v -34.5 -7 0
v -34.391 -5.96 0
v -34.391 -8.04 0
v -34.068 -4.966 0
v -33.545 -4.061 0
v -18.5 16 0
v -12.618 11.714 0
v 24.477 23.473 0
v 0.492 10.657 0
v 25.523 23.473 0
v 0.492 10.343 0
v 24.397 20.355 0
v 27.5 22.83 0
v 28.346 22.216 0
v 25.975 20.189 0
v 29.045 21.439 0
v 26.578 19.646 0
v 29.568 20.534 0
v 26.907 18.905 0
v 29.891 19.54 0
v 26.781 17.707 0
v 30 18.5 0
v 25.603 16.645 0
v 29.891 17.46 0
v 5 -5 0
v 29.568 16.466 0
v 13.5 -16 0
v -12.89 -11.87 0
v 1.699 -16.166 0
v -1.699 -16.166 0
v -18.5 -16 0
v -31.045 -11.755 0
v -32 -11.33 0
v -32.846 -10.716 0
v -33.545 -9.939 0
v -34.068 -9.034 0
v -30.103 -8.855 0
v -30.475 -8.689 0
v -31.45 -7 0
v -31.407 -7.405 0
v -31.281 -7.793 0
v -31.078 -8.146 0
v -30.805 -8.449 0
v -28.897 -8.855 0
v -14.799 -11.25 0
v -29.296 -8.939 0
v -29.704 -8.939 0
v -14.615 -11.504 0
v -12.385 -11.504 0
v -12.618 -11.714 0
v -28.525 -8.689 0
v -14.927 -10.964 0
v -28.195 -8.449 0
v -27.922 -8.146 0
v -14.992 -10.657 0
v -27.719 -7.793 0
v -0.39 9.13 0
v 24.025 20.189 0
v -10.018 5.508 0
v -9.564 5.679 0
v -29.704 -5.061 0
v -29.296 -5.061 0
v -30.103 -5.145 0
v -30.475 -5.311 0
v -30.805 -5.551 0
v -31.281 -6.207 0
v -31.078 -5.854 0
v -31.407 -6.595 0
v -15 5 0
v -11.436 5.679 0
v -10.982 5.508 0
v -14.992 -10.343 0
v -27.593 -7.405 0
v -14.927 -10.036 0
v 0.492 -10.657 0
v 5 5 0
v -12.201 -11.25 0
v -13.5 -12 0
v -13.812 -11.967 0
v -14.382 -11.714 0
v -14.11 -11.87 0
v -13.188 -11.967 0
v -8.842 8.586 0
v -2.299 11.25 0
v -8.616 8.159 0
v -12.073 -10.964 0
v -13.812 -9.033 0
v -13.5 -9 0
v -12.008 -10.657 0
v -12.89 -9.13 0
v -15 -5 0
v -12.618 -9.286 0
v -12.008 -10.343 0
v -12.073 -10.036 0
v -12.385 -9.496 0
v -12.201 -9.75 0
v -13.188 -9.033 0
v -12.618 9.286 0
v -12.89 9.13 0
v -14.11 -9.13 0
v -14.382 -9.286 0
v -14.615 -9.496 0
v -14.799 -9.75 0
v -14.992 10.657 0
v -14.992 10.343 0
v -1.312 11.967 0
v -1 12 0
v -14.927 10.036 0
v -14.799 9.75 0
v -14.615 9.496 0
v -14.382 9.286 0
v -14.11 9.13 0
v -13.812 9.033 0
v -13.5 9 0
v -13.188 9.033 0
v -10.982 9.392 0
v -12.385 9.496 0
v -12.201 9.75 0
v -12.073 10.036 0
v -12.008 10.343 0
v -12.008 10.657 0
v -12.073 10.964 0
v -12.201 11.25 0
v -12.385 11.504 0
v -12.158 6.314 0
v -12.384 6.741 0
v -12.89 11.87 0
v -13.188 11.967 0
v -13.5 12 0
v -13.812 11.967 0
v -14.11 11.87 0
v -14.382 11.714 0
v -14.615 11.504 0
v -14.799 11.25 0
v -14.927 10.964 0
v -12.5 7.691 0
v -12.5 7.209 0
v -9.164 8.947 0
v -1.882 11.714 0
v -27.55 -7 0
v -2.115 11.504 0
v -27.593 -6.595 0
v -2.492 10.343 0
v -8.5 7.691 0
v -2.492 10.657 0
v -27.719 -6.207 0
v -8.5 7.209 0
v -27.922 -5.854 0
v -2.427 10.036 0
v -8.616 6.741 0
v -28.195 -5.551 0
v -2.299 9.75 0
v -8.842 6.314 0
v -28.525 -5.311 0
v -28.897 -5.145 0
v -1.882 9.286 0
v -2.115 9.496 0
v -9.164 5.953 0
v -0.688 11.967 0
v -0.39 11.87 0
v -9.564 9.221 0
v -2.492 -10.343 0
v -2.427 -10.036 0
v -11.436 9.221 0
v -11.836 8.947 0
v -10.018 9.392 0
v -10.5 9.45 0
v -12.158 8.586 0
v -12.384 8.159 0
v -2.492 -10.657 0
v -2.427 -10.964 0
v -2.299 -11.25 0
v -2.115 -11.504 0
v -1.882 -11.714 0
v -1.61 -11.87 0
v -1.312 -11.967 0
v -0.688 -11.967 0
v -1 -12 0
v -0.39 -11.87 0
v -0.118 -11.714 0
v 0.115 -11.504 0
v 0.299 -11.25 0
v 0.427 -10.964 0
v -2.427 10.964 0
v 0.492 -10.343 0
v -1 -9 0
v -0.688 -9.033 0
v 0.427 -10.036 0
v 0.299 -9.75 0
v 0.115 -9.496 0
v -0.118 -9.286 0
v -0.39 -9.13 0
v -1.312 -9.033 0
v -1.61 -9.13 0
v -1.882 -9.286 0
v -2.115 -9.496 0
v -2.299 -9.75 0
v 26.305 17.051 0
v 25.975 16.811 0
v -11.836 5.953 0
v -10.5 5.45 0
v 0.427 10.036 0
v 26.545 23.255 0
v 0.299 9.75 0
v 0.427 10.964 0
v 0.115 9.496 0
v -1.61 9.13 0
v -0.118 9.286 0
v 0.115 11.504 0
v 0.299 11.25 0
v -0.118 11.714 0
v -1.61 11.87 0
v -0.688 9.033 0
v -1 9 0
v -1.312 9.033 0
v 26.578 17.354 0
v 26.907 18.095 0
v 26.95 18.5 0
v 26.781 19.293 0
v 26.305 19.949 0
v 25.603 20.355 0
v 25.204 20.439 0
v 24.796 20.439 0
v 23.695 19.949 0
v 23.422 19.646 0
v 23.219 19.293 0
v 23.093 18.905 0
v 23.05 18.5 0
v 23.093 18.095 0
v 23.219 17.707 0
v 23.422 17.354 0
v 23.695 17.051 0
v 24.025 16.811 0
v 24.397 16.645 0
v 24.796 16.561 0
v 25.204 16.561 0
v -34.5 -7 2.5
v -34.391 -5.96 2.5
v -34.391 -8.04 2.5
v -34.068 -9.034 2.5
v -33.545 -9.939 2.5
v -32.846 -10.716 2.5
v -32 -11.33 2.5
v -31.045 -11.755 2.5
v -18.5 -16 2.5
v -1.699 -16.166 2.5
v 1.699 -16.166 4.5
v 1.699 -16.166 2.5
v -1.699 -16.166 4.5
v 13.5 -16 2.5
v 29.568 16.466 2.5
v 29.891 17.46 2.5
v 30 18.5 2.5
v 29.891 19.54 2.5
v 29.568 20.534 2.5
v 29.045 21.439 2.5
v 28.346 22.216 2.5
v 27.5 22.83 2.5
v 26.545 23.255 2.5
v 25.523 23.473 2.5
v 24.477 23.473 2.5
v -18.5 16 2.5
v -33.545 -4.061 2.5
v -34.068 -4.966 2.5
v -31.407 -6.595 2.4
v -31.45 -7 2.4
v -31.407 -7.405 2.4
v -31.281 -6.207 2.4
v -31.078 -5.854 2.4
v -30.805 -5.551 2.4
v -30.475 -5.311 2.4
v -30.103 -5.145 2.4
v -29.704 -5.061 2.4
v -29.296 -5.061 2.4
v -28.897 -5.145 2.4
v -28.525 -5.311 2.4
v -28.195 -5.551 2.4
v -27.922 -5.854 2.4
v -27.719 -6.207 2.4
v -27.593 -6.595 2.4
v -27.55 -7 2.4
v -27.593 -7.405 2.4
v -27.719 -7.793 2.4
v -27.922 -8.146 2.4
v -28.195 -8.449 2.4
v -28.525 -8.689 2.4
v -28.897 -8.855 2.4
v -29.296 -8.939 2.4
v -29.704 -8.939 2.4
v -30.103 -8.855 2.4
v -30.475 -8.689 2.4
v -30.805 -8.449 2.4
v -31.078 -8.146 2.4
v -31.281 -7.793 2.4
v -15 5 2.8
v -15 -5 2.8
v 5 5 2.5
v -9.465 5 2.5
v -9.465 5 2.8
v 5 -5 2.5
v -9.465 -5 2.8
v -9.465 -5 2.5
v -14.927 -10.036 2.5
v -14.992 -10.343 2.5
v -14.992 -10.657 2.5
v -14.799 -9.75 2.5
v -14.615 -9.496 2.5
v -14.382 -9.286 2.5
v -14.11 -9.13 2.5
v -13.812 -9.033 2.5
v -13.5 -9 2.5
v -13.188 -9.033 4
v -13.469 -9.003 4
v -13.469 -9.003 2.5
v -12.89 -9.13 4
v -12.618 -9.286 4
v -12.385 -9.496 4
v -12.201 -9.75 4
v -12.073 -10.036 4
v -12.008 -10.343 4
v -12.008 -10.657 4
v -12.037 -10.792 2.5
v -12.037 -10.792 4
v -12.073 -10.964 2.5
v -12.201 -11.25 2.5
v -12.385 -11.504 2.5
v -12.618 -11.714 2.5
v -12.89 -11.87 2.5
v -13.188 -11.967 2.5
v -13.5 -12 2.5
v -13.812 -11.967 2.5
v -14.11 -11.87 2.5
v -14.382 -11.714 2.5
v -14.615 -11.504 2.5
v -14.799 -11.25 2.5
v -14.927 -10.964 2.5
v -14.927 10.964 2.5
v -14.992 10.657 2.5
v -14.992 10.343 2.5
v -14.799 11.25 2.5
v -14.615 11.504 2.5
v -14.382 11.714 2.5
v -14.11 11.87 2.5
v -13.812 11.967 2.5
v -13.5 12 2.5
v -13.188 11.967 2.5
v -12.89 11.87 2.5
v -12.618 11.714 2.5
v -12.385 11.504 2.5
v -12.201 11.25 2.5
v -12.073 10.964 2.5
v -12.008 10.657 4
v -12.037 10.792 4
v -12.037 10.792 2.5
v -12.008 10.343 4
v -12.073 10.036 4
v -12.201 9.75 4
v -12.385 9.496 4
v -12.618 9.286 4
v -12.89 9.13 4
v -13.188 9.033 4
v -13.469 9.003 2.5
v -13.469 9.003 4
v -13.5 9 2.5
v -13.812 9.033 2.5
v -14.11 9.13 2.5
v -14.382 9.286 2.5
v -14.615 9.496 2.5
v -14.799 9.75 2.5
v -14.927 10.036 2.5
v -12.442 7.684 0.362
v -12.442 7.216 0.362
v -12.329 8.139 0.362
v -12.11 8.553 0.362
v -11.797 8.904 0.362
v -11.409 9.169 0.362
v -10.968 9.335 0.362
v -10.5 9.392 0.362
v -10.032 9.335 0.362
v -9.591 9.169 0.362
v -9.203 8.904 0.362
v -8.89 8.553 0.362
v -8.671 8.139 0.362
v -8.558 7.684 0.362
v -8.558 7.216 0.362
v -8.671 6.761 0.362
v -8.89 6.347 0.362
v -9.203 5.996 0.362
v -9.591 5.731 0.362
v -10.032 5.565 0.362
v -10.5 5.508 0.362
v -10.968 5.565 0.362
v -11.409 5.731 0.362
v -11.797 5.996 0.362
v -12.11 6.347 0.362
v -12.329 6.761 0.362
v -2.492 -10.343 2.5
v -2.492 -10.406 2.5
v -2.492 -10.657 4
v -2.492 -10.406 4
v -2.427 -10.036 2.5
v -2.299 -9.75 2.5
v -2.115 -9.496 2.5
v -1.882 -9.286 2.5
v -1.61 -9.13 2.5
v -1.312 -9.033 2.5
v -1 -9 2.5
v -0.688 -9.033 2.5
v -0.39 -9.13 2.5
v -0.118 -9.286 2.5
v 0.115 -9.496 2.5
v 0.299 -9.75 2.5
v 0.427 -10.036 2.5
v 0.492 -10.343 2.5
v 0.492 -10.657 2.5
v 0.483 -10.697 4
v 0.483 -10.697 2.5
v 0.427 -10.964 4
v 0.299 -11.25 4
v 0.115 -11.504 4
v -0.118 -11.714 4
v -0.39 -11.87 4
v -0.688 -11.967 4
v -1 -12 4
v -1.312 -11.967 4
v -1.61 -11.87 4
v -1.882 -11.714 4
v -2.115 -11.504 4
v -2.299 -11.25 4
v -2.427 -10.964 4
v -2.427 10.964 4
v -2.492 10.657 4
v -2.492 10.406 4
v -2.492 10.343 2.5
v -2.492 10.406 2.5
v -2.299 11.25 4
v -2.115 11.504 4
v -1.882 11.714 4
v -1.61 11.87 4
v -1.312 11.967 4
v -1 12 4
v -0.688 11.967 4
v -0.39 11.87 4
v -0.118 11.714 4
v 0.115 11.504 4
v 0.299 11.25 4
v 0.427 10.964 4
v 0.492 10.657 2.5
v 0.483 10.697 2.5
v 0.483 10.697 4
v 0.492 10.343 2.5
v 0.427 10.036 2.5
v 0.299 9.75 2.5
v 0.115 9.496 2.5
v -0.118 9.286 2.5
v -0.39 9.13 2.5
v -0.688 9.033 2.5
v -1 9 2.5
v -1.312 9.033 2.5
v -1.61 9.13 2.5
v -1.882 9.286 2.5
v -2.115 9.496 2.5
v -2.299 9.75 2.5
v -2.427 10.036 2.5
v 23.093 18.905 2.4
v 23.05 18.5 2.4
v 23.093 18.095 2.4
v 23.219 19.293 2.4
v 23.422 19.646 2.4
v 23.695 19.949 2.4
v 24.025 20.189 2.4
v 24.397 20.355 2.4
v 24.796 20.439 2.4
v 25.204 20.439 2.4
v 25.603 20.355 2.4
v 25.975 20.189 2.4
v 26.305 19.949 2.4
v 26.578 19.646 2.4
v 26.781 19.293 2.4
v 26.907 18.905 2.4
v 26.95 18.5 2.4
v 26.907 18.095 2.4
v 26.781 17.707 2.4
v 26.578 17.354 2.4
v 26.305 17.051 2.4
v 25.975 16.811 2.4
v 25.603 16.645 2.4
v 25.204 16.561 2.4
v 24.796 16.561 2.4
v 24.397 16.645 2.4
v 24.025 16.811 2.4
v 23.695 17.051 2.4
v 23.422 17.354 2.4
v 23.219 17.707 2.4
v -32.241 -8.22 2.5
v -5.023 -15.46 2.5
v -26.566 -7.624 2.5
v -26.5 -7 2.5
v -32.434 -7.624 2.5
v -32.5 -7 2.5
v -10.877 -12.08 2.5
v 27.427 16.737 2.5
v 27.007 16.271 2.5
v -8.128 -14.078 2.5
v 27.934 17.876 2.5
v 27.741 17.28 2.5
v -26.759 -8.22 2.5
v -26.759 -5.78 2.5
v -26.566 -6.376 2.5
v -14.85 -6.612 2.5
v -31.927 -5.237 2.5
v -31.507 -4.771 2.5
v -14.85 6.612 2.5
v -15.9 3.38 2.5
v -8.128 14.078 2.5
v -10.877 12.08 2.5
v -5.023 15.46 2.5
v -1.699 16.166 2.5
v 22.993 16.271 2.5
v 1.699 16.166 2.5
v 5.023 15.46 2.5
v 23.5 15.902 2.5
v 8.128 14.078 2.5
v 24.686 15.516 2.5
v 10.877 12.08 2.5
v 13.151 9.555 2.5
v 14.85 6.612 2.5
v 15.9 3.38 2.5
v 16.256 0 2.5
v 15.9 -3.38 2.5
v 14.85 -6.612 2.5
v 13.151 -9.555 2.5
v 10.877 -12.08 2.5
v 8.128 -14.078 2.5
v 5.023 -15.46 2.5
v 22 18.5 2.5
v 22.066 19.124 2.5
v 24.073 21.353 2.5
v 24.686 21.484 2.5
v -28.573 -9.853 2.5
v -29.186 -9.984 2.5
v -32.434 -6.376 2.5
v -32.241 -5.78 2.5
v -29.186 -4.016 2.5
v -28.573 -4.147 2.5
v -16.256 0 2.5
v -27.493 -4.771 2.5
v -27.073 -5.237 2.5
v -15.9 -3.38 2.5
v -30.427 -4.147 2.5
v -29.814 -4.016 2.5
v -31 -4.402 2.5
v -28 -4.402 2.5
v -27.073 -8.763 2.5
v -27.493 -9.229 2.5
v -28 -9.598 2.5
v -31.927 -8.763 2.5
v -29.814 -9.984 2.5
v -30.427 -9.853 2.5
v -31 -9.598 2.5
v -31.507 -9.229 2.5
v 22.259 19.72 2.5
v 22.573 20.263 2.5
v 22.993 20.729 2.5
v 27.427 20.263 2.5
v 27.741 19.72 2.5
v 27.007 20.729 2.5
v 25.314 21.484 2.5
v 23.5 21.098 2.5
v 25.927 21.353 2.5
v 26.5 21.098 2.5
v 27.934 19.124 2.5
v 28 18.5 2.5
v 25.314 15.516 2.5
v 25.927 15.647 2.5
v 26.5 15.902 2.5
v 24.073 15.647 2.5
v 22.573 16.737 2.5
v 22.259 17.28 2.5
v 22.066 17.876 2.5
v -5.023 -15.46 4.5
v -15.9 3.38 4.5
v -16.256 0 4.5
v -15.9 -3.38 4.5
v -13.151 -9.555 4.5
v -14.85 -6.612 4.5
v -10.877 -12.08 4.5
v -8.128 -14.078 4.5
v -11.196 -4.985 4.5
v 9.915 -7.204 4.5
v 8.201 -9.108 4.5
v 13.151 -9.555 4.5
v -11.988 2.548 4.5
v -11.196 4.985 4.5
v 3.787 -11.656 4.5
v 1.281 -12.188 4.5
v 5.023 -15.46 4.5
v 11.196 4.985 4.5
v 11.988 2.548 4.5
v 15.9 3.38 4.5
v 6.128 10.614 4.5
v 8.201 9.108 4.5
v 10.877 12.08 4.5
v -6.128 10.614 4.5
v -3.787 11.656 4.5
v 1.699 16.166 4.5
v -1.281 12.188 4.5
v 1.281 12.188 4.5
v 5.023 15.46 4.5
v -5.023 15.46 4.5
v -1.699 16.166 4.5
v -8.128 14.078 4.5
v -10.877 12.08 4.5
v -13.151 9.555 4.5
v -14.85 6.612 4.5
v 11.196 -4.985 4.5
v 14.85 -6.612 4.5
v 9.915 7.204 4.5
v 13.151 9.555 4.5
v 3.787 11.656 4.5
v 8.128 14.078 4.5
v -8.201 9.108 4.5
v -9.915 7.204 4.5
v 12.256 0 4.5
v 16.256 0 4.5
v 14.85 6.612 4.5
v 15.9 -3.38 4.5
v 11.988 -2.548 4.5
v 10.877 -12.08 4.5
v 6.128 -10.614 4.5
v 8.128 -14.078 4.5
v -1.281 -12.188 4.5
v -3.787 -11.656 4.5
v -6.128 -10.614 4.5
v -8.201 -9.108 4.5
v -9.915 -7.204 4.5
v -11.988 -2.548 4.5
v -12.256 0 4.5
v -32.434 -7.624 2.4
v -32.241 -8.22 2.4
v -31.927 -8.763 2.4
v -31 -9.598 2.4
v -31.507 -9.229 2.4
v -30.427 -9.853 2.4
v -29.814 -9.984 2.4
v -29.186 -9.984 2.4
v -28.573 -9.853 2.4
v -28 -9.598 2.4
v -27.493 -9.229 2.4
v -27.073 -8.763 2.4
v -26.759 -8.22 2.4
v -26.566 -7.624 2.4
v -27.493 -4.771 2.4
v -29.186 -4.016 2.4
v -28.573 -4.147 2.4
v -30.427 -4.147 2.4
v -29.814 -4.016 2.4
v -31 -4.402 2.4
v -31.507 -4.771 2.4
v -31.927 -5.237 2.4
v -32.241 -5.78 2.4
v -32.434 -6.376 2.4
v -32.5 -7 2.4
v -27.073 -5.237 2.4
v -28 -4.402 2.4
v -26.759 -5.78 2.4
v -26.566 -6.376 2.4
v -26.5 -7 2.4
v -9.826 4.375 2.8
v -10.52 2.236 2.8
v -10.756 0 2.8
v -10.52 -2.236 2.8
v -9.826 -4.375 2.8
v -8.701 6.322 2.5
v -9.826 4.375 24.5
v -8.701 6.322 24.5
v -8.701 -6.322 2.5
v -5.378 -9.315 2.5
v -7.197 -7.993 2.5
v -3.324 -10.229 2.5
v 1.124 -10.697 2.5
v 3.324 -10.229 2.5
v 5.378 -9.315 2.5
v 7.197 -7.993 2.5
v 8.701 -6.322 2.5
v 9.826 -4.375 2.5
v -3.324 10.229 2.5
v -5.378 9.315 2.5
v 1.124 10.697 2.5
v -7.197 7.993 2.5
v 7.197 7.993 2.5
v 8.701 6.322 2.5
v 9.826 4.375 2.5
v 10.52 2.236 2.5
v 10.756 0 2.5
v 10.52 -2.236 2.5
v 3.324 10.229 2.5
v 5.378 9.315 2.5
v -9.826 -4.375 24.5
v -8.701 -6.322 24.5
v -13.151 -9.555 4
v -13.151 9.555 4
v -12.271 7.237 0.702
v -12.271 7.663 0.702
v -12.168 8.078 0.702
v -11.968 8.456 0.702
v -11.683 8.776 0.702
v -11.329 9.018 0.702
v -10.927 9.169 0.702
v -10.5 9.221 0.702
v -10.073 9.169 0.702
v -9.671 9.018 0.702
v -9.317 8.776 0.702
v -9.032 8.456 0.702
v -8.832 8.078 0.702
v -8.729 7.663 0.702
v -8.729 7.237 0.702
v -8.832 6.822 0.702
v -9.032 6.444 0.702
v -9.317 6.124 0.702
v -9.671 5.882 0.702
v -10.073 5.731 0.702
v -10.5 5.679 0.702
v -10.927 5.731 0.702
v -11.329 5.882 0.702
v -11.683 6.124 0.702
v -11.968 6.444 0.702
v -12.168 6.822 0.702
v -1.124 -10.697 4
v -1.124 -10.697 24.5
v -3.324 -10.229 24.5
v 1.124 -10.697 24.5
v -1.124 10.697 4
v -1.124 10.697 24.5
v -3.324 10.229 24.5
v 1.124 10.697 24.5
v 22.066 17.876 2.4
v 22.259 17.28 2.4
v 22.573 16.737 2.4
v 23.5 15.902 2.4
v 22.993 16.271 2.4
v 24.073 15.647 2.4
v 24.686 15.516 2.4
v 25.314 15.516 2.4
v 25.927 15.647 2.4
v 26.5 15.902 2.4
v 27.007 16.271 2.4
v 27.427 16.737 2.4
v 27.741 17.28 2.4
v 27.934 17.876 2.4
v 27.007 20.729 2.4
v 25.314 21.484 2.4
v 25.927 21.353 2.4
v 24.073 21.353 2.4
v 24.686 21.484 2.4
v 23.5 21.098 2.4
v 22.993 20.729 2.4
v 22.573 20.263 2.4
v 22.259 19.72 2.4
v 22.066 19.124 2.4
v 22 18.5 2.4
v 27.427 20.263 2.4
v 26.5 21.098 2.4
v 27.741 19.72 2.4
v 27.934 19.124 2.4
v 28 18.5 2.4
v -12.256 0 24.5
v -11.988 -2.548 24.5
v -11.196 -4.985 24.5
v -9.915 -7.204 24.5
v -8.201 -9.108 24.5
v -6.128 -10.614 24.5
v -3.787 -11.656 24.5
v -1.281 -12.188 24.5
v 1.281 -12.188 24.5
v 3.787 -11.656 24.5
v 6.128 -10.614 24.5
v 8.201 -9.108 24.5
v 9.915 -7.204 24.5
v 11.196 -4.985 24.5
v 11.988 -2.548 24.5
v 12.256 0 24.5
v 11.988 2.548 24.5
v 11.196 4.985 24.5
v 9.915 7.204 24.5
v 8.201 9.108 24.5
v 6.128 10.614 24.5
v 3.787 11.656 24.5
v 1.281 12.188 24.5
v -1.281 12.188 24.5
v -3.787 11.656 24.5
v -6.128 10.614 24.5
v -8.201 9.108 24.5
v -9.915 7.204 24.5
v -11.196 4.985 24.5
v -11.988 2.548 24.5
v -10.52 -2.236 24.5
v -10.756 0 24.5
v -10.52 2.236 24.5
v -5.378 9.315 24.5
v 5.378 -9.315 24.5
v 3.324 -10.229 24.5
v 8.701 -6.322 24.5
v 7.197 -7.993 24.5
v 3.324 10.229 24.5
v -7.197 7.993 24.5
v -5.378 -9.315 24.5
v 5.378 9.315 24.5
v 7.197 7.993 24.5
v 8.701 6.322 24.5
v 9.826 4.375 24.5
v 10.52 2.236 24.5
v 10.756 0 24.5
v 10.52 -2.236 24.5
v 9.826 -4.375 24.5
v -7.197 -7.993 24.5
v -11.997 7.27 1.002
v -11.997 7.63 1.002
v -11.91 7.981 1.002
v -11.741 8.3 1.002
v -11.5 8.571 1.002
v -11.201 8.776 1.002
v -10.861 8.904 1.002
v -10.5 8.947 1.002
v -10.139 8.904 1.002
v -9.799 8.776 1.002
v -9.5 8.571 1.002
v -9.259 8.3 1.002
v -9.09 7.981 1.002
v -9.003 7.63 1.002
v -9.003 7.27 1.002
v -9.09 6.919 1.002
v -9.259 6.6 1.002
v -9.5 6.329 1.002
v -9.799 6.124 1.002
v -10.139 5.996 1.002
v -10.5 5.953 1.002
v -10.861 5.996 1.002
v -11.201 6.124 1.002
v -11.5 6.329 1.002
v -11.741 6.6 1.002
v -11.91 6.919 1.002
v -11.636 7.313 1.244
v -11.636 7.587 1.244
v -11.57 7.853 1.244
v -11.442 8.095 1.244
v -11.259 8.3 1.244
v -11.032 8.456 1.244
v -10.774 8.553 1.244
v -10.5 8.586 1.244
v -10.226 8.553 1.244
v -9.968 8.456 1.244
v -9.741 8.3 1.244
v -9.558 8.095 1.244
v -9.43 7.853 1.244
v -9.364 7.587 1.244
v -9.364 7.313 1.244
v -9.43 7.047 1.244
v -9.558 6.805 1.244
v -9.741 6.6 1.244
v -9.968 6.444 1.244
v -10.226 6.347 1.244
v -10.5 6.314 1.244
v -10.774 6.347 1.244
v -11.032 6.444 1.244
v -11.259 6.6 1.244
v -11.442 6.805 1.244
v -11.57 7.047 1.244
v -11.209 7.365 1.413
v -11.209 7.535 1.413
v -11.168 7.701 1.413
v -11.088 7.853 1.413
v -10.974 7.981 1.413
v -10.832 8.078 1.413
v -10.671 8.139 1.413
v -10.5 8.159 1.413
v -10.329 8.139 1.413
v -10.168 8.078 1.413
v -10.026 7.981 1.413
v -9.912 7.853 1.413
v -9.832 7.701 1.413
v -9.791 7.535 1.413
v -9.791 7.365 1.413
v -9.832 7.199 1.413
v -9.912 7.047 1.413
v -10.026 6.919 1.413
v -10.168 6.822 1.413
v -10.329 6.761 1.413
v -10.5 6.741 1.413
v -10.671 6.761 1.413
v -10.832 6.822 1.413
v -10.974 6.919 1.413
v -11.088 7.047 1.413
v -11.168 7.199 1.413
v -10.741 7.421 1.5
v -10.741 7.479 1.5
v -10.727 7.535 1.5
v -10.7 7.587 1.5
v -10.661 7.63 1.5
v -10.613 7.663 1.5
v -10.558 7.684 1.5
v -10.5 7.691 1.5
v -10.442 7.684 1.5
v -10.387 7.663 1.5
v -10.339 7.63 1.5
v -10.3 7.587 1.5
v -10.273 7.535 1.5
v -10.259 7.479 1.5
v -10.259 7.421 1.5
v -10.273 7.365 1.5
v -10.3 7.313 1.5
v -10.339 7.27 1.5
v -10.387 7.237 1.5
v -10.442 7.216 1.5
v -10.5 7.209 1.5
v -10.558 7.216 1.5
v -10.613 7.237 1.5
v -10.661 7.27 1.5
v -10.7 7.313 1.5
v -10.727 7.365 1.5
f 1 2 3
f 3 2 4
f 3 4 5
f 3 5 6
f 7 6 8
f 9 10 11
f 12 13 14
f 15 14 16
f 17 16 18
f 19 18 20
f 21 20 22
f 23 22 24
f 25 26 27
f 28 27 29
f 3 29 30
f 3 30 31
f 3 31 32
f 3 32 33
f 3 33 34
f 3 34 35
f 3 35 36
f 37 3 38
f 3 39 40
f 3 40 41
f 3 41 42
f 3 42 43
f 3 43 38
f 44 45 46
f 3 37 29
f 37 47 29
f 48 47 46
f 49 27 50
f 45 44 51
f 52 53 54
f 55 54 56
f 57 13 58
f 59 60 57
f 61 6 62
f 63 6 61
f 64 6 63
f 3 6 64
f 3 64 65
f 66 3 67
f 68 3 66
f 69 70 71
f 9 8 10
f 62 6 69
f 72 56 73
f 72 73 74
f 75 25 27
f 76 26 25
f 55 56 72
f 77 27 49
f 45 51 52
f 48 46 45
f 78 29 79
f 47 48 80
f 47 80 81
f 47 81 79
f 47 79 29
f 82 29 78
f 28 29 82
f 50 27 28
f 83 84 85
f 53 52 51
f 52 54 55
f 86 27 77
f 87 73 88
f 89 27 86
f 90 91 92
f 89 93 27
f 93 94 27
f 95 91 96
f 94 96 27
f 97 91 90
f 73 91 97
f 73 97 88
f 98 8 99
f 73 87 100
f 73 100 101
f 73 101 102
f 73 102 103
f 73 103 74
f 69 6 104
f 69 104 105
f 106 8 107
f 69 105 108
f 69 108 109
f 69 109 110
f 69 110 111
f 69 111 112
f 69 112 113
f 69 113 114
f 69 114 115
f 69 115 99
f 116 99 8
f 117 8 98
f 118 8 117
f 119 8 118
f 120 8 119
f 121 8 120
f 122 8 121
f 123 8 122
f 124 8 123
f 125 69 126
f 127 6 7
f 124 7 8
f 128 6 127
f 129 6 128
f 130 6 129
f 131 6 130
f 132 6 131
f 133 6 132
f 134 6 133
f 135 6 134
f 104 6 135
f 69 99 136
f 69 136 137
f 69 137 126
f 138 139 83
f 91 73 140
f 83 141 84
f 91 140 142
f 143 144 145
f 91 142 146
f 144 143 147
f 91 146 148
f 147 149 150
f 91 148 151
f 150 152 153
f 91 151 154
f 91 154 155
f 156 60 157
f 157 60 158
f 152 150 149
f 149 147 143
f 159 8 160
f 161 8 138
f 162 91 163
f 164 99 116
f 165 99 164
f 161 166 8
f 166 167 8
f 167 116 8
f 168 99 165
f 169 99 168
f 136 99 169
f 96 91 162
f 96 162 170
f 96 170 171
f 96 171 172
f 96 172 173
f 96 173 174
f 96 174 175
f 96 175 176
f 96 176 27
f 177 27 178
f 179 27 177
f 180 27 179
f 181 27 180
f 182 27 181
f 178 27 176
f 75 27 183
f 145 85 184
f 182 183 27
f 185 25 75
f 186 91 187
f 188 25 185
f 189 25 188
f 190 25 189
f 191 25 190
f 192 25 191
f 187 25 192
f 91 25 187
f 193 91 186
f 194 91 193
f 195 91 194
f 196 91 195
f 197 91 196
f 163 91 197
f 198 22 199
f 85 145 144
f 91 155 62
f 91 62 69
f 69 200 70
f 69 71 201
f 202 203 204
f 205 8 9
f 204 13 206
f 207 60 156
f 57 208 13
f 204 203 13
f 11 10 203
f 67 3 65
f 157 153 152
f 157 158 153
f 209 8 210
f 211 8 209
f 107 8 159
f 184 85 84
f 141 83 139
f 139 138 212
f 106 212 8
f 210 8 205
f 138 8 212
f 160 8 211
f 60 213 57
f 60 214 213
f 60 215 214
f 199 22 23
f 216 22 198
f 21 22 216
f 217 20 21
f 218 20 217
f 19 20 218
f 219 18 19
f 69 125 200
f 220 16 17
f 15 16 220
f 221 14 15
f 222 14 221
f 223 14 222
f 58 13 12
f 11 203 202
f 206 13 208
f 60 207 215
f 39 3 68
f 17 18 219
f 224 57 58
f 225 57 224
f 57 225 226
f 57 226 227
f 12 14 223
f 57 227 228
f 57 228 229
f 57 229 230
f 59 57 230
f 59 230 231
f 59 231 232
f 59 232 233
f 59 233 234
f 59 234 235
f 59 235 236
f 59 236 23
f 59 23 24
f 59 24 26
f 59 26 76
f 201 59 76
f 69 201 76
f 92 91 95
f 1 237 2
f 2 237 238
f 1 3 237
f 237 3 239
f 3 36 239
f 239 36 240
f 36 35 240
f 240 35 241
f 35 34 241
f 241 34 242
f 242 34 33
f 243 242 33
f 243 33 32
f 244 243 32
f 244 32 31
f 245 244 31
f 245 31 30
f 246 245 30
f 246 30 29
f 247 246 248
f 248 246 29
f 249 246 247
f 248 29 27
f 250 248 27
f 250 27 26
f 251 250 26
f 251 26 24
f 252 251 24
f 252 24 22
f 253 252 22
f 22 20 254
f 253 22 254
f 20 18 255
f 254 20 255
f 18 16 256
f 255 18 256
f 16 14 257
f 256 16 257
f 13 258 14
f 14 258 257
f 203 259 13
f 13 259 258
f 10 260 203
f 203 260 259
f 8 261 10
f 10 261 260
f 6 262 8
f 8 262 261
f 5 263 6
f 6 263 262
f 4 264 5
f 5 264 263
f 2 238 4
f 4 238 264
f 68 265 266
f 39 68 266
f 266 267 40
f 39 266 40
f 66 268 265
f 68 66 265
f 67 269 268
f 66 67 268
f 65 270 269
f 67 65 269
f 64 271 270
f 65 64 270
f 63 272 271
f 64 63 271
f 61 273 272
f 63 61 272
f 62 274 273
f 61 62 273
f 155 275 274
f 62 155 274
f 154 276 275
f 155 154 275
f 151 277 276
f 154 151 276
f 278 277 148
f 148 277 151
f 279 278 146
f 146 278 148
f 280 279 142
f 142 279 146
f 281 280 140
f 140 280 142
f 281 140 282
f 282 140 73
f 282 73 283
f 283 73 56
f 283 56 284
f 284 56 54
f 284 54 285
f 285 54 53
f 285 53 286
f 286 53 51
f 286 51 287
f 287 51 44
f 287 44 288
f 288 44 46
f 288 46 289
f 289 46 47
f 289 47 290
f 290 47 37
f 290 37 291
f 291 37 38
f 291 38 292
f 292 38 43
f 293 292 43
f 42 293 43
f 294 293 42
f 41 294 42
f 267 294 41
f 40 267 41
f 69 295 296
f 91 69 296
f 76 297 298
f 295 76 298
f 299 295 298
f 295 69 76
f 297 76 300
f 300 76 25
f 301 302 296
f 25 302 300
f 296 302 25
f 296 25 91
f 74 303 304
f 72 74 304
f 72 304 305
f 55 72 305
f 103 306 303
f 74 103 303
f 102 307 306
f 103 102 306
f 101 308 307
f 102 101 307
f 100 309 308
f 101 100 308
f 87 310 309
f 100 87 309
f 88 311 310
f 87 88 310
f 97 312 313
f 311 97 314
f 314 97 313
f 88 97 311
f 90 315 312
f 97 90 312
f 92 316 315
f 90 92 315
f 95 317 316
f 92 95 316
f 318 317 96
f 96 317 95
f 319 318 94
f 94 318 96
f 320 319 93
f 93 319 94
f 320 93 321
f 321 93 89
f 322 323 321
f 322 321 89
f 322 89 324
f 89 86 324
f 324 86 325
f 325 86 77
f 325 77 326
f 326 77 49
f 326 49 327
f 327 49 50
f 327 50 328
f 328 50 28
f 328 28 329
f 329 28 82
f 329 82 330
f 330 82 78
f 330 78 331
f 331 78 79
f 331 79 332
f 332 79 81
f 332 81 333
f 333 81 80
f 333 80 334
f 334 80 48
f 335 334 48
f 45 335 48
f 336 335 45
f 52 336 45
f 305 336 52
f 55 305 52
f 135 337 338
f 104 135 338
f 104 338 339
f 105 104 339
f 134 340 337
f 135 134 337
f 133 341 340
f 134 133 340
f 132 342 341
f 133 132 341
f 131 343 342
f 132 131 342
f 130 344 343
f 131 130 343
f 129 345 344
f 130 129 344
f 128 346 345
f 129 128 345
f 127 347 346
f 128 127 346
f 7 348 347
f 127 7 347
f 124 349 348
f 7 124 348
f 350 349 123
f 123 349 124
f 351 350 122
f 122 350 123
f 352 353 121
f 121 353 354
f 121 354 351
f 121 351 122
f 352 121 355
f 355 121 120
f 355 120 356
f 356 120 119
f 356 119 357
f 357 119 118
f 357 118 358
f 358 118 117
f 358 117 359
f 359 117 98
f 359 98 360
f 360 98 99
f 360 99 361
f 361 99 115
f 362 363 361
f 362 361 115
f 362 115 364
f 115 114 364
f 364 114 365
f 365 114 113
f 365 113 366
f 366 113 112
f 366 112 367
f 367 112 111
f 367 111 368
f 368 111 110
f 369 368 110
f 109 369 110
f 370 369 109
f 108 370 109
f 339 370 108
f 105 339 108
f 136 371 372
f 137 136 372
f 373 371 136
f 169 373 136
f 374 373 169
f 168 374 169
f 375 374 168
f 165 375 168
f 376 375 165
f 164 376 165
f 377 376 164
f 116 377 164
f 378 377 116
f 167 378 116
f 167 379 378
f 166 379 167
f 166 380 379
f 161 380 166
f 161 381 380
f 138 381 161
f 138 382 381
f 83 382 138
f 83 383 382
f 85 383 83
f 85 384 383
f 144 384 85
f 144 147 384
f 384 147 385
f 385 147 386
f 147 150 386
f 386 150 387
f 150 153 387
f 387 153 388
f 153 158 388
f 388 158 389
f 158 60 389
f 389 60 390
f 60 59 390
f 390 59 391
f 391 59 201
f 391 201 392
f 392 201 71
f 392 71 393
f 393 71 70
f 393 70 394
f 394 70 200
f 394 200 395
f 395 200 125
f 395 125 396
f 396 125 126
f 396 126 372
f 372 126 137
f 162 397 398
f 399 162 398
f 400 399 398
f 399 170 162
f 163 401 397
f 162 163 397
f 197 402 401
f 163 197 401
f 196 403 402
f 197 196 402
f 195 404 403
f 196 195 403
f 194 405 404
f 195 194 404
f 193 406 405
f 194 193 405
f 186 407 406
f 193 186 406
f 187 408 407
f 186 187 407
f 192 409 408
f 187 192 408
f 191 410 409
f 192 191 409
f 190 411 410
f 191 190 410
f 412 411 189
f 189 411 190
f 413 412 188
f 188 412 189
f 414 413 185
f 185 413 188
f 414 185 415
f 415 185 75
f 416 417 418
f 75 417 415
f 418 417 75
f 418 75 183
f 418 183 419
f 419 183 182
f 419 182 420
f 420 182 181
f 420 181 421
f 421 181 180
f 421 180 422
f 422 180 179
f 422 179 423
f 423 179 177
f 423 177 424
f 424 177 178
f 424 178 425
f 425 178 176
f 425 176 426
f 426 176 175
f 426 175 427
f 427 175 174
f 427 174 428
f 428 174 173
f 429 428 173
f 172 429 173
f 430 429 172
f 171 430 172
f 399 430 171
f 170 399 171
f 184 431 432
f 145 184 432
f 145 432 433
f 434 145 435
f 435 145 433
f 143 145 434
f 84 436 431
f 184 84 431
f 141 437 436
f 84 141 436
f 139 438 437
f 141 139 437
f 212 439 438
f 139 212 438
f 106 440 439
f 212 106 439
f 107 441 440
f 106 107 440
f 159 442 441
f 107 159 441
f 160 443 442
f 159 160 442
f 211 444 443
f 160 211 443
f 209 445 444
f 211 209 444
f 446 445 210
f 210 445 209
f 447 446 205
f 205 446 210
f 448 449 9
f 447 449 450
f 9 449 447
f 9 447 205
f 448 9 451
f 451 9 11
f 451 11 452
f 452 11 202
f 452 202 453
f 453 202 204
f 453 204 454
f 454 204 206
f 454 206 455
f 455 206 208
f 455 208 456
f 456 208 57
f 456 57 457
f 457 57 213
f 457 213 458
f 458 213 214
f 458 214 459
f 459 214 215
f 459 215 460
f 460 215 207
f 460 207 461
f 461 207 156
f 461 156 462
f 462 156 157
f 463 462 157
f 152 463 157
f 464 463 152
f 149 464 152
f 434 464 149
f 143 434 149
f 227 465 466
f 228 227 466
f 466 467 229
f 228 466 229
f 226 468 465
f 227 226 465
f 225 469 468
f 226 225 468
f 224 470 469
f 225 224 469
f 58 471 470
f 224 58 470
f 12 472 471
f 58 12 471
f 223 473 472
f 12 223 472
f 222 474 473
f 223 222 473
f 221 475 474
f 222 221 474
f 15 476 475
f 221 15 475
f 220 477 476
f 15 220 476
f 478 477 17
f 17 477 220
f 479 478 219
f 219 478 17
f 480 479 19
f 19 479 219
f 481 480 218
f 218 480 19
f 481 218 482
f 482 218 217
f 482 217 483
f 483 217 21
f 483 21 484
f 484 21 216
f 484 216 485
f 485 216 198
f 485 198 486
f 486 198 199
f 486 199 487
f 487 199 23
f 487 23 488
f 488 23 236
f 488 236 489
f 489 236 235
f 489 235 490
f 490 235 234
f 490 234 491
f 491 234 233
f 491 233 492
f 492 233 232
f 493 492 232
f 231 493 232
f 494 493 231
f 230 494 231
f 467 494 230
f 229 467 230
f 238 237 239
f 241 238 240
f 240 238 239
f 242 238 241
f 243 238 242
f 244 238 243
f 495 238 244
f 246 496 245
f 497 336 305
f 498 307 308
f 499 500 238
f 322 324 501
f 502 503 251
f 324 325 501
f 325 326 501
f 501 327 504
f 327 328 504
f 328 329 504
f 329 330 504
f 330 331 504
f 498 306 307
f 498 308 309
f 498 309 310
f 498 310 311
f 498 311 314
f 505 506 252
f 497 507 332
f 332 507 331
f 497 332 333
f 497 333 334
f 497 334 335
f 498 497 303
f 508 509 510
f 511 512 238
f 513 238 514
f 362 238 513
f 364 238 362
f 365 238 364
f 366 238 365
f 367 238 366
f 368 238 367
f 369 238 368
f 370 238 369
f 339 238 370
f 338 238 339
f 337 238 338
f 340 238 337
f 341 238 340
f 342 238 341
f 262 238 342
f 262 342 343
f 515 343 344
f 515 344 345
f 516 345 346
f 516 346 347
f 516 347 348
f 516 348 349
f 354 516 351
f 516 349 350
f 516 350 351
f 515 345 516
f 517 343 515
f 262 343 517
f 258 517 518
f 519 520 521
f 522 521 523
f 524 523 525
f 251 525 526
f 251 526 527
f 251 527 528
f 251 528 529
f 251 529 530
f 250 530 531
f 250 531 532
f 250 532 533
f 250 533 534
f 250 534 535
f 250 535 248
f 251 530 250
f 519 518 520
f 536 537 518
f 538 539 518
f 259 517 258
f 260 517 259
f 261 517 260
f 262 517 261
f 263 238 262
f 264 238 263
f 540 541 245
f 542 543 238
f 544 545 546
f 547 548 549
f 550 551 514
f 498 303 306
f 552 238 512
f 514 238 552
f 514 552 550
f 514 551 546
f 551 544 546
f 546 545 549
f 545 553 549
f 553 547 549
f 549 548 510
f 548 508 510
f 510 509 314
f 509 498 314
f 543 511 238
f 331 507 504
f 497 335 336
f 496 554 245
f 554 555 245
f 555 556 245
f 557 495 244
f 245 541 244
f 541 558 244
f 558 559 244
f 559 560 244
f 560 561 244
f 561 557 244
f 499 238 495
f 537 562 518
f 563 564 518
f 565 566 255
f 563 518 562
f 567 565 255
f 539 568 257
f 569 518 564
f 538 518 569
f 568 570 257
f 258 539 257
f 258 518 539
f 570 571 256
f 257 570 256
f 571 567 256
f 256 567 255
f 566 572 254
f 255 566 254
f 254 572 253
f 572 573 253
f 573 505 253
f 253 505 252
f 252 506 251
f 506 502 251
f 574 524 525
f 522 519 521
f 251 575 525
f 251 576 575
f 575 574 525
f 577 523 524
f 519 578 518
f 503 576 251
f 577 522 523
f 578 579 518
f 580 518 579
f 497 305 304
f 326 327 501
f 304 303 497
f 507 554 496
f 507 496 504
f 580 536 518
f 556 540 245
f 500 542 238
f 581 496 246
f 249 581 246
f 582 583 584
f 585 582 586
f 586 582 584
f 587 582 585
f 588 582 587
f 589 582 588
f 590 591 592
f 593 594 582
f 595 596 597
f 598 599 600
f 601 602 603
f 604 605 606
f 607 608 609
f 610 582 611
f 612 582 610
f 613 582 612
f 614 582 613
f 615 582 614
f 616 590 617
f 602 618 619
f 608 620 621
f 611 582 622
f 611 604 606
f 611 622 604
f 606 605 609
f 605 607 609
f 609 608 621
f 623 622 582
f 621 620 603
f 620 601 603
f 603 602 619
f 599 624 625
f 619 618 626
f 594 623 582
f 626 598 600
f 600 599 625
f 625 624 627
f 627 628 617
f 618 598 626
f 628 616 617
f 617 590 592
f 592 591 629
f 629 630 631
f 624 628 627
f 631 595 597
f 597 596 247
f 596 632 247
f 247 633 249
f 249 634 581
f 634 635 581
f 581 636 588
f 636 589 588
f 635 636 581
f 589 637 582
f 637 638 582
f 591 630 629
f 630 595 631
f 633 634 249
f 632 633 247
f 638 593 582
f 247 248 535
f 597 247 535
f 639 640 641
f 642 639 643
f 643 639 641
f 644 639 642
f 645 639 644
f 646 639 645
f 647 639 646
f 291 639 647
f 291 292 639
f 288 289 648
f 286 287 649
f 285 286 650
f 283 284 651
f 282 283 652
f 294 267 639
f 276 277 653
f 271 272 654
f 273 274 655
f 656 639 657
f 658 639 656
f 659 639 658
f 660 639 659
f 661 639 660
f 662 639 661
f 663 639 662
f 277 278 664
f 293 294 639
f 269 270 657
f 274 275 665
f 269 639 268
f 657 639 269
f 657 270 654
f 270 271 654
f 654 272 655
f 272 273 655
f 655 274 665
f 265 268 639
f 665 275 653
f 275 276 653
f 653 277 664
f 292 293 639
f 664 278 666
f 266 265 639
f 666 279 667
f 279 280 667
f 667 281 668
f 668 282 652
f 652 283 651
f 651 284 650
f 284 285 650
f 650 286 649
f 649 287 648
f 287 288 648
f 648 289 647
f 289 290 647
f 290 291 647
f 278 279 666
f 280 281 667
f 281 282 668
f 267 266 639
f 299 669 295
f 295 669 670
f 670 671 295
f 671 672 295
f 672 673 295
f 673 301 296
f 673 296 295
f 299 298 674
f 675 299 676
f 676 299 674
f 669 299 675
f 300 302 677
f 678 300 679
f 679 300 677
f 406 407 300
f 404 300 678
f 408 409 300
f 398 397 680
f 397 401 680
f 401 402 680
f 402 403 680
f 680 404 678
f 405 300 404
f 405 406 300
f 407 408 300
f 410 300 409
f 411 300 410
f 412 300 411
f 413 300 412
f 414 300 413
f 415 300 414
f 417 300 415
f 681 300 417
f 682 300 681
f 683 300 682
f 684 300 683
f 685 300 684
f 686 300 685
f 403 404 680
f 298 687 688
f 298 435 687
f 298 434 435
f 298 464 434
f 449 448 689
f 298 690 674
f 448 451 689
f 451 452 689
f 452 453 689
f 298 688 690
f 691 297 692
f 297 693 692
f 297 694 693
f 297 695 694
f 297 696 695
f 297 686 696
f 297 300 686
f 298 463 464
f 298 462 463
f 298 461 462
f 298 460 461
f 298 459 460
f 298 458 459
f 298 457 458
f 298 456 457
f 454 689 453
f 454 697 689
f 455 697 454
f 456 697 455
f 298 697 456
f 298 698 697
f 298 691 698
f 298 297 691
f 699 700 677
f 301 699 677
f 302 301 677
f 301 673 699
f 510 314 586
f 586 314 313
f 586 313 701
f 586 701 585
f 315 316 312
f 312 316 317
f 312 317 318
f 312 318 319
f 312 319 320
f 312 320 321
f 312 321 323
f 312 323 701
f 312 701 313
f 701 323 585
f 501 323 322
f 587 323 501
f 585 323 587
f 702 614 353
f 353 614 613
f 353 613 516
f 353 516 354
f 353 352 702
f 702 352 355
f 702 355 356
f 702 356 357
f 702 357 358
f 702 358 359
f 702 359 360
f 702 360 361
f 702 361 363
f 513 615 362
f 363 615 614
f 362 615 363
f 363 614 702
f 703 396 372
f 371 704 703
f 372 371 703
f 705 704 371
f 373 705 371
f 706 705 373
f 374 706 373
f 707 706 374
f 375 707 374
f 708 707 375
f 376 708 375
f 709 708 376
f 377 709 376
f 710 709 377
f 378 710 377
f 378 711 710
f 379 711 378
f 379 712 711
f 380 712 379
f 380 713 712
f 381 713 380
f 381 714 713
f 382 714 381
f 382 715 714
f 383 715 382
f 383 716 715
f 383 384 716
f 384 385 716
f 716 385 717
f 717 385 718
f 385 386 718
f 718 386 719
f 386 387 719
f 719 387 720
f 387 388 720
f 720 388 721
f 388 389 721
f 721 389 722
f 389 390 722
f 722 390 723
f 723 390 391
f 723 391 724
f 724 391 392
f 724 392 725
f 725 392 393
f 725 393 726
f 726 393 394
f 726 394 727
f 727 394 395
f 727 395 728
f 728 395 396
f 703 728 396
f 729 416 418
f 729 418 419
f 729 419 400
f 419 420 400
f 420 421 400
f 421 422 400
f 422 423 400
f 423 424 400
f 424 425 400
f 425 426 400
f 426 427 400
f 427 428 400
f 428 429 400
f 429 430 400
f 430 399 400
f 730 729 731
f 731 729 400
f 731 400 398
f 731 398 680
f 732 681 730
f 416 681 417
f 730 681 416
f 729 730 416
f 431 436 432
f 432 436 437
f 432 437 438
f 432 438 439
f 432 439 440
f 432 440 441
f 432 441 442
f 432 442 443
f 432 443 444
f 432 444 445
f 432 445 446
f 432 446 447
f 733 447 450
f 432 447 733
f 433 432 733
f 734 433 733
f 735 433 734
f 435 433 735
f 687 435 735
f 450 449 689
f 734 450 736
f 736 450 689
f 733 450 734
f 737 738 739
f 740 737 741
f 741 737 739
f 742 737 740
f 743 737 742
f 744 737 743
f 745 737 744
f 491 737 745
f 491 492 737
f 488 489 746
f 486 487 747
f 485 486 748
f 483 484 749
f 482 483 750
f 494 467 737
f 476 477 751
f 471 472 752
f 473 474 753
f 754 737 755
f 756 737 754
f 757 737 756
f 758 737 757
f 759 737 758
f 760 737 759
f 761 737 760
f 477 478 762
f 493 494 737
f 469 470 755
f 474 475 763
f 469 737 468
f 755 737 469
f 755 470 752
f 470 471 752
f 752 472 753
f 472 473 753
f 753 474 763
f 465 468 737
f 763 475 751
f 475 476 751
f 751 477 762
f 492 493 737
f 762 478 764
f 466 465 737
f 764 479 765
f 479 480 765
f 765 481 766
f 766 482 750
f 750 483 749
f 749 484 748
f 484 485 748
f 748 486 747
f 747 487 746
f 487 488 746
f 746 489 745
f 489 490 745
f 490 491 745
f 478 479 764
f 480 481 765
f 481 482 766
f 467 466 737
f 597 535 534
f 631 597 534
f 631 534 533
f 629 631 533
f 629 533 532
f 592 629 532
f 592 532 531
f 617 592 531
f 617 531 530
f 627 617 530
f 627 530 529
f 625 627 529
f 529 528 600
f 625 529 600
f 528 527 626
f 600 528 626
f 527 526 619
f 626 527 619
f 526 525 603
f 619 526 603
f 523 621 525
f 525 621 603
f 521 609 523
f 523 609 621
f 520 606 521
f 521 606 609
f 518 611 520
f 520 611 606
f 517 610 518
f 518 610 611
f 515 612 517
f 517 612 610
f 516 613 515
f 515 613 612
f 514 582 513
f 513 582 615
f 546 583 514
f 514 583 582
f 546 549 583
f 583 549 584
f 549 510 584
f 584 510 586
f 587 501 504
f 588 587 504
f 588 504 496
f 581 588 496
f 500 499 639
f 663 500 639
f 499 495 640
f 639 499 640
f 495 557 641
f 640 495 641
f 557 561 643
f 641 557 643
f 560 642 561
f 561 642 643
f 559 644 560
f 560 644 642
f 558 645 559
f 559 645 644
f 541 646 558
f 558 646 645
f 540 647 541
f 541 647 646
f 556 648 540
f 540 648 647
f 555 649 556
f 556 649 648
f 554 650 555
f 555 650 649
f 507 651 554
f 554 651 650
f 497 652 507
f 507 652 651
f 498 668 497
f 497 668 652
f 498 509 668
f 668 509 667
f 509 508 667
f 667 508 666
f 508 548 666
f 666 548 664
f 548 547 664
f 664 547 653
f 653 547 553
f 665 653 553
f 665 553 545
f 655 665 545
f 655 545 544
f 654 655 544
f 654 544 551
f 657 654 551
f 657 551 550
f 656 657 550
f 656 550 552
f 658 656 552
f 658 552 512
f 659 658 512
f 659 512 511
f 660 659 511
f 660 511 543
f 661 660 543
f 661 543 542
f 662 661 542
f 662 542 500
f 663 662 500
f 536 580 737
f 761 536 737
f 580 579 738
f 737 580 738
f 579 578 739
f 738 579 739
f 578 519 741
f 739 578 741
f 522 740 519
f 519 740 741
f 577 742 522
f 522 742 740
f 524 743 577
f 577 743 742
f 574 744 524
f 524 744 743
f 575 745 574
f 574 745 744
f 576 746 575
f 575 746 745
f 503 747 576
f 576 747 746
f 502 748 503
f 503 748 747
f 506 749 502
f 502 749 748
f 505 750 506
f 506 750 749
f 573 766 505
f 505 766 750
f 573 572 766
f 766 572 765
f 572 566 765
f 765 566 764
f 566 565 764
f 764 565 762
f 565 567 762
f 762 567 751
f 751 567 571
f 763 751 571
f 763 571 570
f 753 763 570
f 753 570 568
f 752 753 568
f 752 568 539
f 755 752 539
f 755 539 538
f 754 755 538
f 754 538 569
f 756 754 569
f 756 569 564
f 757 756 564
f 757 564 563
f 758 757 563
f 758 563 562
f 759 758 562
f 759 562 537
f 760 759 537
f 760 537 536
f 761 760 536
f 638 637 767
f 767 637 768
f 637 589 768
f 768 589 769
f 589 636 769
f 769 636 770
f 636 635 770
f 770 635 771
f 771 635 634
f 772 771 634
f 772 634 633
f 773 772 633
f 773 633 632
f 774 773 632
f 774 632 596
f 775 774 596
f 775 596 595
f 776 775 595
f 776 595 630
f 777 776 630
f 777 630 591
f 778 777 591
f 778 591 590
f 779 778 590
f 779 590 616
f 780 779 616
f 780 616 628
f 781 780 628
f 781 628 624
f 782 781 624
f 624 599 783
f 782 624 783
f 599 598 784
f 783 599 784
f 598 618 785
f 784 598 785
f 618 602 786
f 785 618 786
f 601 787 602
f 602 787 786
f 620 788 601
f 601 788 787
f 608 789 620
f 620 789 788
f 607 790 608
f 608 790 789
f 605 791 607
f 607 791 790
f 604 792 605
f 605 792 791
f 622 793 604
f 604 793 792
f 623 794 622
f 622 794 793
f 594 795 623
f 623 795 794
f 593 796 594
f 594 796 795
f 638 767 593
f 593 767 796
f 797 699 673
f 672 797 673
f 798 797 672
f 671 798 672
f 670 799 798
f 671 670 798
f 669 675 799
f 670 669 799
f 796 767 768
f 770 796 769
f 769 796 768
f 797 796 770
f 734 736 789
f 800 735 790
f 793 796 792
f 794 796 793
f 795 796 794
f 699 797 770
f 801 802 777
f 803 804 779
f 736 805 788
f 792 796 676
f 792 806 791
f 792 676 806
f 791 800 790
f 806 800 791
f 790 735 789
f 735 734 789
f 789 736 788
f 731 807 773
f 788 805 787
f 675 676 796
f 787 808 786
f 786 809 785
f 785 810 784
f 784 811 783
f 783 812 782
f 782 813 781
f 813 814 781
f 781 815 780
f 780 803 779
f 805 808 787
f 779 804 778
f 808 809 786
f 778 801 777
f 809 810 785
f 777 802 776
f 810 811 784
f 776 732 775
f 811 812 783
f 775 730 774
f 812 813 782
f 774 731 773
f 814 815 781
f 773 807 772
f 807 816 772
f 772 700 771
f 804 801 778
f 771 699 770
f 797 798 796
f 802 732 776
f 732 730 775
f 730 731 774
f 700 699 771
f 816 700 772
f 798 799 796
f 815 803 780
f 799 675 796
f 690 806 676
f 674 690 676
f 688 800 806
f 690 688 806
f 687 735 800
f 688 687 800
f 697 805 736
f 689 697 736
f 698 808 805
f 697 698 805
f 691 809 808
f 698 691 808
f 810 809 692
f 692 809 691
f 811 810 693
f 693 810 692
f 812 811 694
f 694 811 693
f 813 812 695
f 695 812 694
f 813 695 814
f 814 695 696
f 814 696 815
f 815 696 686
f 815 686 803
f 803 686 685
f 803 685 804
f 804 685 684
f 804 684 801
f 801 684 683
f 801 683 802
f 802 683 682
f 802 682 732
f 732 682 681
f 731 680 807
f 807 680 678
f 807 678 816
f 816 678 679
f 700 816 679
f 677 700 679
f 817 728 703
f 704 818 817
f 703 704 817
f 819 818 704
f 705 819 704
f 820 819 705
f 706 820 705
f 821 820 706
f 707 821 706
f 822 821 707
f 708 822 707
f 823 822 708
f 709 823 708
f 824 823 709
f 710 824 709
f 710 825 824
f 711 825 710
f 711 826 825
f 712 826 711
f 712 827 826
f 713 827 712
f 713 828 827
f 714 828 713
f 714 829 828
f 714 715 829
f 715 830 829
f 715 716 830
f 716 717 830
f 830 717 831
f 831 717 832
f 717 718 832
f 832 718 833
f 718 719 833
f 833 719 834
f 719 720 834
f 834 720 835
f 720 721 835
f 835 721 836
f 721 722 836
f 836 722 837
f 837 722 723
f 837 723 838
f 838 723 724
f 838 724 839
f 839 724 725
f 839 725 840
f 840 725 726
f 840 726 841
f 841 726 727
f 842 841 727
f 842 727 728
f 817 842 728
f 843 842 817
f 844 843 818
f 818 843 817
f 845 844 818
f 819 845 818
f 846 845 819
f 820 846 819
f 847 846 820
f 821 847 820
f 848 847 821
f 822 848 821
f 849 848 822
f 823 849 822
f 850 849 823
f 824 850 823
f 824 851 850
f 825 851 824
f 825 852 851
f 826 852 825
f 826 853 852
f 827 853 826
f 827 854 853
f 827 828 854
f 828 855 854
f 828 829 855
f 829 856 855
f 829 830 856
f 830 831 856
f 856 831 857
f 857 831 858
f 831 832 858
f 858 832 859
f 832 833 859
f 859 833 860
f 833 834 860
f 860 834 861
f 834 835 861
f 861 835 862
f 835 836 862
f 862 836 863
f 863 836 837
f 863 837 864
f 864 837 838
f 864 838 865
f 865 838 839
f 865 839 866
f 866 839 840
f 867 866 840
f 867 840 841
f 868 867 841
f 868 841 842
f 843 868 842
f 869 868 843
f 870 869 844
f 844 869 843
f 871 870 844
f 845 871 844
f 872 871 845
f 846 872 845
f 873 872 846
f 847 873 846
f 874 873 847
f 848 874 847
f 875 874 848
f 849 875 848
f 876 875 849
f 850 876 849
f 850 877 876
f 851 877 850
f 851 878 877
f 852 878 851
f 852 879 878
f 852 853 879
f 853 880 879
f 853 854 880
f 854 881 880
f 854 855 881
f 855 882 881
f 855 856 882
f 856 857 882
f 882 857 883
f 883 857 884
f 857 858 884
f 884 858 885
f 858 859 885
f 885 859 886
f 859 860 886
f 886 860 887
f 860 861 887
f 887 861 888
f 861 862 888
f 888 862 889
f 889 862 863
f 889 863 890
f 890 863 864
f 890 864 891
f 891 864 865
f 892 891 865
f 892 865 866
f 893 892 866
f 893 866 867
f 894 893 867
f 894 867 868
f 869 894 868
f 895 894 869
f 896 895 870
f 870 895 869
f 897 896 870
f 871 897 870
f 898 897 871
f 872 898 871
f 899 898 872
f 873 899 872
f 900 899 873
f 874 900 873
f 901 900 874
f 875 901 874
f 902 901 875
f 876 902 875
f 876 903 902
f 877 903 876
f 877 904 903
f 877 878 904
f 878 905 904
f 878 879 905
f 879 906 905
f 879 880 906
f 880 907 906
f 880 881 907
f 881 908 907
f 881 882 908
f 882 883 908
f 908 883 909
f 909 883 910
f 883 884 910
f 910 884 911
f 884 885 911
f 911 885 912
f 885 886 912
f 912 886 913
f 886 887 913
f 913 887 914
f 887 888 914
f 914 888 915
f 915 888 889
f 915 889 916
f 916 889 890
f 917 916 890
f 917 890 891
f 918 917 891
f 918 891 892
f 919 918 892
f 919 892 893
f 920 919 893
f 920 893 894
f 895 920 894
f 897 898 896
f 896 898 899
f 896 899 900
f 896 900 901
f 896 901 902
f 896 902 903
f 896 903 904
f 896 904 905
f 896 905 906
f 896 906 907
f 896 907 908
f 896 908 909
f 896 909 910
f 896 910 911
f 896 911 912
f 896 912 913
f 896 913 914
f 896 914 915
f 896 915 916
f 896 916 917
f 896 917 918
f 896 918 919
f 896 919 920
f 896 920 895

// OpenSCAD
// file: dimensions.scad
// The camera board by my measurement is 25.10 mm wide, 24.22 mm tope-bottom

// Camera module board dimensions
// These are for the version 1.3 board.
// This is a combination of my caliper measurements and 
// <http://www.raspberrypi-spy.co.uk/2013/05/pi-camera-module-mechanical-dimensions/>

hole_expansion = 0.5;   // Extra radius on holes
// CM -- Camera Module
// Origin is lower left corner looking into lens with cable out the bottom
// We later rotate([0,0,90]) to put the cable out to +x in the Pi board coordinates (USB-side direction)
CM_size = [25.1, 24.22,0];   // My caliper measurement
CM_hole_dia = 2.0;  // Diameter of mounting hole
CM_hole_space = [21.0, 12.5];
CM_hole_zero = [(CM_size[0] - CM_hole_space[0])/2, 9.5];
CM_optical_center = [CM_size[0]/2, 8.5];    // Lens is not well-registered
CM_board_thick_z = 1.0; // Measured as 0.87 exclusive of components
CM_board_and_connector_thick_z = 3.52; // From top of board to back of connector by calipers
CM_LED_location = [20,19];  // Where the LED is
CM_LED_hollow_size = [4,4,3];   // size of hollow to surround LED
CM_LED_dome_size = [5,5,4];     // Size of outside of dome around LED
CM_camera_square = [8,8,4] + [2,2,0];   // Including 2 mm of slop in X,Y   
CM_top_connector = [[10,20,3],[-5,-5,-0.2]];    // Keepout box

CMOS_diagonal = 1.4e-3 * sqrt(pow(2592,2) + pow(1944,2));

// Raspberry Pi rev 2 mounting holes
// http://www.raspberrypi.org/wp-content/uploads/2012/12/Raspberry-Pi-Mounting-Hole-Template.png
// Looking down on the component/connector side of the board, with the USB port to the right
// and the origin at the lower left, the board size is 
PI_board_size = [85,56];
PI_mounthole_locs = [[25.5,18],[80,43.5]];
PI_mounthole_dia = 2.9;

PI_optical_center = [55, 25];   // Where you want to place the central axis of the optical system
                                // Note that there is interference between the [25.5, 18] mounting hole
                                // and the camera board if you try to center it on the board center

drawtube_OD = 25.4 * 0.965; // Popular sizes for telescopes are 0.965", 1.25", 2.0"
drawtube_length = 20.0;     // Length of drawtube beyond flange (part that extends into nosepiece)
drawtube_wall = 1.5;
flange_parfocal = 4.5;      // How far behind the end of the eyepiece tube to put the board plane
flange_stepsize = 4.0;      // How much the tube steps out to the side to seat on flange

mounthole_out_radius = 5;   // How far from the center of mount holes to the edge of the plate
mounthole_washer_radius = 3.0;  // How much clearance to leave around the top of the mounting hole for washer and screw head

CM_hole_extra_length = 4;   // How long to extend the CM mounting holes into the drawtube assembly

 // Baseplate that goes against the front of the CM circuit board
plate_thickness = 2.5;

optics_f_ratio = 5.0;       // How much clearance to leave the baffles so they don't cut off the incoming light cone

// Each baffle is a conical shell that fills the drawtube, pointing 
// away from the detector, but cut away so the detector can see everything 
// within the f_ratio light path
baffle_thickness = 0.5; // Vertical thickness
baffle_spacing = 5;     // Vertical spacing (not perpendicular)
baffle_cone_height = drawtube_OD * tan(60)/2;   //slope of cone is 60 degrees 

// Plate in which the module is embedded
// the bottom of the plate is at z=-backplate_thickness and the top at z=0
// The coordinate system is the same as for the drawtube
backplate_thickness = 5;

backplate_cavity = [[28,30,4.1],[-17.5, -15, -4]];
// Where you feed out the cable
backplate_slot = backplate_cavity + [[-24,0,0],[24,0,-3]];

first_rail = [[19,3,backplate_thickness-CM_board_thick_z],[-18,-12,-backplate_thickness]];
// file: shapes.scad
// Centered on z axis with cyl symmetry, going from  Z=[0,length]
module drawtube_and_flange()
{
    difference() {
        union() {
            cylinder(h=drawtube_length+flange_parfocal,r=drawtube_OD/2,center=0);
            cylinder(h=flange_parfocal,r=drawtube_OD/2 + flange_stepsize,center=0);
        }
        cylinder(h=2.1*(drawtube_length+flange_parfocal),r=drawtube_OD/2-drawtube_wall,center=1);
    }
}


module baffles()
{
    intersection()
    {
        for ( z = [flange_parfocal:baffle_spacing:drawtube_length+flange_parfocal ])
        {
            difference() 
            {
                translate([0,0,z+baffle_thickness]) cylinder(h=baffle_cone_height,r1=drawtube_OD/2,r2=0.1);
                translate([0,0,z                 ]) cylinder(h=baffle_cone_height,r1=drawtube_OD/2,r2=0.1);
            }
        }
        cylinder(h=drawtube_length+flange_parfocal,r=drawtube_OD/2,center=0);
    }
}
 

// Keepout space for camera module
// Oriented centered on the lens, facing +Z, cable out -X, top surface at Z=0
module CM_keepout()
{
    // Light cone keepout
    nose_ID = drawtube_OD - 2*drawtube_wall;
    lightcone_height = (nose_ID - (2 + CMOS_diagonal) ) * optics_f_ratio;
    rotate([0,0,90])
    {
        union()
        {
            // Cube of camera
            translate([-CM_camera_square[0]/2,-CM_camera_square[1]/2,0])
                cube(CM_camera_square);
            translate(CM_top_connector[1]) cube(CM_top_connector[0]);

            // camera and connector on top
            translate(CM_optical_center * -1)
                translate(CM_LED_location)
                    resize(CM_LED_hollow_size) sphere();
            
            cylinder(h = lightcone_height, r1 = CMOS_diagonal, r2= nose_ID/2);
        }
    }
}
 
module CM_mountholes()
{   
    rotate([0,0,90]) translate(CM_optical_center * -1)
    {
        for ( i = [0:1])
        {
            for (j=[0:1])
            {
                translate([CM_hole_zero[0] + i*CM_hole_space[0], CM_hole_zero[1] + j*CM_hole_space[1], 0])
                    cylinder(h=2*CM_hole_extra_length, r=CM_hole_dia/2 + hole_expansion, center=true);
            }
        }
    }
}

module CM_mountpins()
{   
    rotate([0,0,90]) translate(CM_optical_center * -1)
    {
        for ( i = [0:1])
        {
            for (j=[0:1])
            {
                translate([CM_hole_zero[0] + i*CM_hole_space[0], CM_hole_zero[1] + j*CM_hole_space[1], -backplate_thickness])
                    cylinder(h=backplate_thickness+plate_thickness, r=CM_hole_dia/2, center=false);
            }
        }
    }
}

// Slab for either the front or back plate, with the given thickness
// z in range [0,thickness], optical axis centered at [0,0,z]
// No holes included
module plate_slab(thickness)
{
    hull() 
    {
        translate(PI_optical_center * -1) 
        {
            for (i = [0:1])
            {
                translate(PI_mounthole_locs[i]) 
                    cylinder(h=thickness,r=mounthole_out_radius);
            }
        }
        cylinder(h=thickness,r=drawtube_OD/2 + flange_stepsize);
        translate(backplate_cavity[1] + -1 * [1,1]) // Move center to center of board
            cube([backplate_cavity[0][1] + 2,backplate_cavity[0][1] + 2,thickness]);  // Stretch 1 mm beyond CM board cavity on all 4 edges
    }
}


module PI_mount_screw_keepout()
{
    // mount screw and Washer keepouts
    translate(PI_optical_center * -1) 
    {
        for (i = [0:1])
        {
            translate(PI_mounthole_locs[i])
            {
                union()
                {
                    cylinder(h=2*(plate_thickness + backplate_thickness),r=PI_mounthole_dia/2 + hole_expansion,center=true);
                    translate([0,0,plate_thickness - 0.1])
                        cylinder(h=2*plate_thickness+flange_parfocal,r=mounthole_washer_radius);
                }
                    
                    
            }            
        }
    }
}

module frontplate()
{
    union()
    {
        
        difference() {
            plate_slab(plate_thickness);
            for (i = [0:1])
            {
                translate(PI_mounthole_locs[i] - PI_optical_center) 
                    cylinder(h=3*plate_thickness,r=PI_mounthole_dia/2 + hole_expansion,center=true);
            }
        }
        // LED dome positive space
        difference()
        {
            rotate([0,0,90]) 
                translate(CM_optical_center * -1 + CM_LED_location)
                    resize(CM_LED_dome_size) sphere();
            translate([-50,-50,-100]) cube([100,100,100]);
        }
    }
}

module backplate()
{
    difference()
    {
        translate([0,0,-backplate_thickness]) plate_slab(backplate_thickness);
        PI_mount_screw_keepout();
        translate(backplate_cavity[1]) cube(backplate_cavity[0]);
        translate(backplate_slot[1]) cube(backplate_slot[0]);
    }
    CM_mountpins();
    for (i = [0:1])
    {
        translate([0,i*CM_hole_space[0],0])
            translate(first_rail[1])
                cube(first_rail[0]);
    }
}

module drawtube_assembly()
{
    difference() {
        union() {
            drawtube_and_flange();
            frontplate();
            // baffles();
        }
        PI_mount_screw_keepout();
        CM_mountholes();
        CM_keepout();
    }
}


include <dimensions.scad>
// main file
// camera module draw tube that slides into the telescope nosepiece.

$fs=0.25;

include <shapes.scad>

render(convexity=5) drawtube_assembly();
